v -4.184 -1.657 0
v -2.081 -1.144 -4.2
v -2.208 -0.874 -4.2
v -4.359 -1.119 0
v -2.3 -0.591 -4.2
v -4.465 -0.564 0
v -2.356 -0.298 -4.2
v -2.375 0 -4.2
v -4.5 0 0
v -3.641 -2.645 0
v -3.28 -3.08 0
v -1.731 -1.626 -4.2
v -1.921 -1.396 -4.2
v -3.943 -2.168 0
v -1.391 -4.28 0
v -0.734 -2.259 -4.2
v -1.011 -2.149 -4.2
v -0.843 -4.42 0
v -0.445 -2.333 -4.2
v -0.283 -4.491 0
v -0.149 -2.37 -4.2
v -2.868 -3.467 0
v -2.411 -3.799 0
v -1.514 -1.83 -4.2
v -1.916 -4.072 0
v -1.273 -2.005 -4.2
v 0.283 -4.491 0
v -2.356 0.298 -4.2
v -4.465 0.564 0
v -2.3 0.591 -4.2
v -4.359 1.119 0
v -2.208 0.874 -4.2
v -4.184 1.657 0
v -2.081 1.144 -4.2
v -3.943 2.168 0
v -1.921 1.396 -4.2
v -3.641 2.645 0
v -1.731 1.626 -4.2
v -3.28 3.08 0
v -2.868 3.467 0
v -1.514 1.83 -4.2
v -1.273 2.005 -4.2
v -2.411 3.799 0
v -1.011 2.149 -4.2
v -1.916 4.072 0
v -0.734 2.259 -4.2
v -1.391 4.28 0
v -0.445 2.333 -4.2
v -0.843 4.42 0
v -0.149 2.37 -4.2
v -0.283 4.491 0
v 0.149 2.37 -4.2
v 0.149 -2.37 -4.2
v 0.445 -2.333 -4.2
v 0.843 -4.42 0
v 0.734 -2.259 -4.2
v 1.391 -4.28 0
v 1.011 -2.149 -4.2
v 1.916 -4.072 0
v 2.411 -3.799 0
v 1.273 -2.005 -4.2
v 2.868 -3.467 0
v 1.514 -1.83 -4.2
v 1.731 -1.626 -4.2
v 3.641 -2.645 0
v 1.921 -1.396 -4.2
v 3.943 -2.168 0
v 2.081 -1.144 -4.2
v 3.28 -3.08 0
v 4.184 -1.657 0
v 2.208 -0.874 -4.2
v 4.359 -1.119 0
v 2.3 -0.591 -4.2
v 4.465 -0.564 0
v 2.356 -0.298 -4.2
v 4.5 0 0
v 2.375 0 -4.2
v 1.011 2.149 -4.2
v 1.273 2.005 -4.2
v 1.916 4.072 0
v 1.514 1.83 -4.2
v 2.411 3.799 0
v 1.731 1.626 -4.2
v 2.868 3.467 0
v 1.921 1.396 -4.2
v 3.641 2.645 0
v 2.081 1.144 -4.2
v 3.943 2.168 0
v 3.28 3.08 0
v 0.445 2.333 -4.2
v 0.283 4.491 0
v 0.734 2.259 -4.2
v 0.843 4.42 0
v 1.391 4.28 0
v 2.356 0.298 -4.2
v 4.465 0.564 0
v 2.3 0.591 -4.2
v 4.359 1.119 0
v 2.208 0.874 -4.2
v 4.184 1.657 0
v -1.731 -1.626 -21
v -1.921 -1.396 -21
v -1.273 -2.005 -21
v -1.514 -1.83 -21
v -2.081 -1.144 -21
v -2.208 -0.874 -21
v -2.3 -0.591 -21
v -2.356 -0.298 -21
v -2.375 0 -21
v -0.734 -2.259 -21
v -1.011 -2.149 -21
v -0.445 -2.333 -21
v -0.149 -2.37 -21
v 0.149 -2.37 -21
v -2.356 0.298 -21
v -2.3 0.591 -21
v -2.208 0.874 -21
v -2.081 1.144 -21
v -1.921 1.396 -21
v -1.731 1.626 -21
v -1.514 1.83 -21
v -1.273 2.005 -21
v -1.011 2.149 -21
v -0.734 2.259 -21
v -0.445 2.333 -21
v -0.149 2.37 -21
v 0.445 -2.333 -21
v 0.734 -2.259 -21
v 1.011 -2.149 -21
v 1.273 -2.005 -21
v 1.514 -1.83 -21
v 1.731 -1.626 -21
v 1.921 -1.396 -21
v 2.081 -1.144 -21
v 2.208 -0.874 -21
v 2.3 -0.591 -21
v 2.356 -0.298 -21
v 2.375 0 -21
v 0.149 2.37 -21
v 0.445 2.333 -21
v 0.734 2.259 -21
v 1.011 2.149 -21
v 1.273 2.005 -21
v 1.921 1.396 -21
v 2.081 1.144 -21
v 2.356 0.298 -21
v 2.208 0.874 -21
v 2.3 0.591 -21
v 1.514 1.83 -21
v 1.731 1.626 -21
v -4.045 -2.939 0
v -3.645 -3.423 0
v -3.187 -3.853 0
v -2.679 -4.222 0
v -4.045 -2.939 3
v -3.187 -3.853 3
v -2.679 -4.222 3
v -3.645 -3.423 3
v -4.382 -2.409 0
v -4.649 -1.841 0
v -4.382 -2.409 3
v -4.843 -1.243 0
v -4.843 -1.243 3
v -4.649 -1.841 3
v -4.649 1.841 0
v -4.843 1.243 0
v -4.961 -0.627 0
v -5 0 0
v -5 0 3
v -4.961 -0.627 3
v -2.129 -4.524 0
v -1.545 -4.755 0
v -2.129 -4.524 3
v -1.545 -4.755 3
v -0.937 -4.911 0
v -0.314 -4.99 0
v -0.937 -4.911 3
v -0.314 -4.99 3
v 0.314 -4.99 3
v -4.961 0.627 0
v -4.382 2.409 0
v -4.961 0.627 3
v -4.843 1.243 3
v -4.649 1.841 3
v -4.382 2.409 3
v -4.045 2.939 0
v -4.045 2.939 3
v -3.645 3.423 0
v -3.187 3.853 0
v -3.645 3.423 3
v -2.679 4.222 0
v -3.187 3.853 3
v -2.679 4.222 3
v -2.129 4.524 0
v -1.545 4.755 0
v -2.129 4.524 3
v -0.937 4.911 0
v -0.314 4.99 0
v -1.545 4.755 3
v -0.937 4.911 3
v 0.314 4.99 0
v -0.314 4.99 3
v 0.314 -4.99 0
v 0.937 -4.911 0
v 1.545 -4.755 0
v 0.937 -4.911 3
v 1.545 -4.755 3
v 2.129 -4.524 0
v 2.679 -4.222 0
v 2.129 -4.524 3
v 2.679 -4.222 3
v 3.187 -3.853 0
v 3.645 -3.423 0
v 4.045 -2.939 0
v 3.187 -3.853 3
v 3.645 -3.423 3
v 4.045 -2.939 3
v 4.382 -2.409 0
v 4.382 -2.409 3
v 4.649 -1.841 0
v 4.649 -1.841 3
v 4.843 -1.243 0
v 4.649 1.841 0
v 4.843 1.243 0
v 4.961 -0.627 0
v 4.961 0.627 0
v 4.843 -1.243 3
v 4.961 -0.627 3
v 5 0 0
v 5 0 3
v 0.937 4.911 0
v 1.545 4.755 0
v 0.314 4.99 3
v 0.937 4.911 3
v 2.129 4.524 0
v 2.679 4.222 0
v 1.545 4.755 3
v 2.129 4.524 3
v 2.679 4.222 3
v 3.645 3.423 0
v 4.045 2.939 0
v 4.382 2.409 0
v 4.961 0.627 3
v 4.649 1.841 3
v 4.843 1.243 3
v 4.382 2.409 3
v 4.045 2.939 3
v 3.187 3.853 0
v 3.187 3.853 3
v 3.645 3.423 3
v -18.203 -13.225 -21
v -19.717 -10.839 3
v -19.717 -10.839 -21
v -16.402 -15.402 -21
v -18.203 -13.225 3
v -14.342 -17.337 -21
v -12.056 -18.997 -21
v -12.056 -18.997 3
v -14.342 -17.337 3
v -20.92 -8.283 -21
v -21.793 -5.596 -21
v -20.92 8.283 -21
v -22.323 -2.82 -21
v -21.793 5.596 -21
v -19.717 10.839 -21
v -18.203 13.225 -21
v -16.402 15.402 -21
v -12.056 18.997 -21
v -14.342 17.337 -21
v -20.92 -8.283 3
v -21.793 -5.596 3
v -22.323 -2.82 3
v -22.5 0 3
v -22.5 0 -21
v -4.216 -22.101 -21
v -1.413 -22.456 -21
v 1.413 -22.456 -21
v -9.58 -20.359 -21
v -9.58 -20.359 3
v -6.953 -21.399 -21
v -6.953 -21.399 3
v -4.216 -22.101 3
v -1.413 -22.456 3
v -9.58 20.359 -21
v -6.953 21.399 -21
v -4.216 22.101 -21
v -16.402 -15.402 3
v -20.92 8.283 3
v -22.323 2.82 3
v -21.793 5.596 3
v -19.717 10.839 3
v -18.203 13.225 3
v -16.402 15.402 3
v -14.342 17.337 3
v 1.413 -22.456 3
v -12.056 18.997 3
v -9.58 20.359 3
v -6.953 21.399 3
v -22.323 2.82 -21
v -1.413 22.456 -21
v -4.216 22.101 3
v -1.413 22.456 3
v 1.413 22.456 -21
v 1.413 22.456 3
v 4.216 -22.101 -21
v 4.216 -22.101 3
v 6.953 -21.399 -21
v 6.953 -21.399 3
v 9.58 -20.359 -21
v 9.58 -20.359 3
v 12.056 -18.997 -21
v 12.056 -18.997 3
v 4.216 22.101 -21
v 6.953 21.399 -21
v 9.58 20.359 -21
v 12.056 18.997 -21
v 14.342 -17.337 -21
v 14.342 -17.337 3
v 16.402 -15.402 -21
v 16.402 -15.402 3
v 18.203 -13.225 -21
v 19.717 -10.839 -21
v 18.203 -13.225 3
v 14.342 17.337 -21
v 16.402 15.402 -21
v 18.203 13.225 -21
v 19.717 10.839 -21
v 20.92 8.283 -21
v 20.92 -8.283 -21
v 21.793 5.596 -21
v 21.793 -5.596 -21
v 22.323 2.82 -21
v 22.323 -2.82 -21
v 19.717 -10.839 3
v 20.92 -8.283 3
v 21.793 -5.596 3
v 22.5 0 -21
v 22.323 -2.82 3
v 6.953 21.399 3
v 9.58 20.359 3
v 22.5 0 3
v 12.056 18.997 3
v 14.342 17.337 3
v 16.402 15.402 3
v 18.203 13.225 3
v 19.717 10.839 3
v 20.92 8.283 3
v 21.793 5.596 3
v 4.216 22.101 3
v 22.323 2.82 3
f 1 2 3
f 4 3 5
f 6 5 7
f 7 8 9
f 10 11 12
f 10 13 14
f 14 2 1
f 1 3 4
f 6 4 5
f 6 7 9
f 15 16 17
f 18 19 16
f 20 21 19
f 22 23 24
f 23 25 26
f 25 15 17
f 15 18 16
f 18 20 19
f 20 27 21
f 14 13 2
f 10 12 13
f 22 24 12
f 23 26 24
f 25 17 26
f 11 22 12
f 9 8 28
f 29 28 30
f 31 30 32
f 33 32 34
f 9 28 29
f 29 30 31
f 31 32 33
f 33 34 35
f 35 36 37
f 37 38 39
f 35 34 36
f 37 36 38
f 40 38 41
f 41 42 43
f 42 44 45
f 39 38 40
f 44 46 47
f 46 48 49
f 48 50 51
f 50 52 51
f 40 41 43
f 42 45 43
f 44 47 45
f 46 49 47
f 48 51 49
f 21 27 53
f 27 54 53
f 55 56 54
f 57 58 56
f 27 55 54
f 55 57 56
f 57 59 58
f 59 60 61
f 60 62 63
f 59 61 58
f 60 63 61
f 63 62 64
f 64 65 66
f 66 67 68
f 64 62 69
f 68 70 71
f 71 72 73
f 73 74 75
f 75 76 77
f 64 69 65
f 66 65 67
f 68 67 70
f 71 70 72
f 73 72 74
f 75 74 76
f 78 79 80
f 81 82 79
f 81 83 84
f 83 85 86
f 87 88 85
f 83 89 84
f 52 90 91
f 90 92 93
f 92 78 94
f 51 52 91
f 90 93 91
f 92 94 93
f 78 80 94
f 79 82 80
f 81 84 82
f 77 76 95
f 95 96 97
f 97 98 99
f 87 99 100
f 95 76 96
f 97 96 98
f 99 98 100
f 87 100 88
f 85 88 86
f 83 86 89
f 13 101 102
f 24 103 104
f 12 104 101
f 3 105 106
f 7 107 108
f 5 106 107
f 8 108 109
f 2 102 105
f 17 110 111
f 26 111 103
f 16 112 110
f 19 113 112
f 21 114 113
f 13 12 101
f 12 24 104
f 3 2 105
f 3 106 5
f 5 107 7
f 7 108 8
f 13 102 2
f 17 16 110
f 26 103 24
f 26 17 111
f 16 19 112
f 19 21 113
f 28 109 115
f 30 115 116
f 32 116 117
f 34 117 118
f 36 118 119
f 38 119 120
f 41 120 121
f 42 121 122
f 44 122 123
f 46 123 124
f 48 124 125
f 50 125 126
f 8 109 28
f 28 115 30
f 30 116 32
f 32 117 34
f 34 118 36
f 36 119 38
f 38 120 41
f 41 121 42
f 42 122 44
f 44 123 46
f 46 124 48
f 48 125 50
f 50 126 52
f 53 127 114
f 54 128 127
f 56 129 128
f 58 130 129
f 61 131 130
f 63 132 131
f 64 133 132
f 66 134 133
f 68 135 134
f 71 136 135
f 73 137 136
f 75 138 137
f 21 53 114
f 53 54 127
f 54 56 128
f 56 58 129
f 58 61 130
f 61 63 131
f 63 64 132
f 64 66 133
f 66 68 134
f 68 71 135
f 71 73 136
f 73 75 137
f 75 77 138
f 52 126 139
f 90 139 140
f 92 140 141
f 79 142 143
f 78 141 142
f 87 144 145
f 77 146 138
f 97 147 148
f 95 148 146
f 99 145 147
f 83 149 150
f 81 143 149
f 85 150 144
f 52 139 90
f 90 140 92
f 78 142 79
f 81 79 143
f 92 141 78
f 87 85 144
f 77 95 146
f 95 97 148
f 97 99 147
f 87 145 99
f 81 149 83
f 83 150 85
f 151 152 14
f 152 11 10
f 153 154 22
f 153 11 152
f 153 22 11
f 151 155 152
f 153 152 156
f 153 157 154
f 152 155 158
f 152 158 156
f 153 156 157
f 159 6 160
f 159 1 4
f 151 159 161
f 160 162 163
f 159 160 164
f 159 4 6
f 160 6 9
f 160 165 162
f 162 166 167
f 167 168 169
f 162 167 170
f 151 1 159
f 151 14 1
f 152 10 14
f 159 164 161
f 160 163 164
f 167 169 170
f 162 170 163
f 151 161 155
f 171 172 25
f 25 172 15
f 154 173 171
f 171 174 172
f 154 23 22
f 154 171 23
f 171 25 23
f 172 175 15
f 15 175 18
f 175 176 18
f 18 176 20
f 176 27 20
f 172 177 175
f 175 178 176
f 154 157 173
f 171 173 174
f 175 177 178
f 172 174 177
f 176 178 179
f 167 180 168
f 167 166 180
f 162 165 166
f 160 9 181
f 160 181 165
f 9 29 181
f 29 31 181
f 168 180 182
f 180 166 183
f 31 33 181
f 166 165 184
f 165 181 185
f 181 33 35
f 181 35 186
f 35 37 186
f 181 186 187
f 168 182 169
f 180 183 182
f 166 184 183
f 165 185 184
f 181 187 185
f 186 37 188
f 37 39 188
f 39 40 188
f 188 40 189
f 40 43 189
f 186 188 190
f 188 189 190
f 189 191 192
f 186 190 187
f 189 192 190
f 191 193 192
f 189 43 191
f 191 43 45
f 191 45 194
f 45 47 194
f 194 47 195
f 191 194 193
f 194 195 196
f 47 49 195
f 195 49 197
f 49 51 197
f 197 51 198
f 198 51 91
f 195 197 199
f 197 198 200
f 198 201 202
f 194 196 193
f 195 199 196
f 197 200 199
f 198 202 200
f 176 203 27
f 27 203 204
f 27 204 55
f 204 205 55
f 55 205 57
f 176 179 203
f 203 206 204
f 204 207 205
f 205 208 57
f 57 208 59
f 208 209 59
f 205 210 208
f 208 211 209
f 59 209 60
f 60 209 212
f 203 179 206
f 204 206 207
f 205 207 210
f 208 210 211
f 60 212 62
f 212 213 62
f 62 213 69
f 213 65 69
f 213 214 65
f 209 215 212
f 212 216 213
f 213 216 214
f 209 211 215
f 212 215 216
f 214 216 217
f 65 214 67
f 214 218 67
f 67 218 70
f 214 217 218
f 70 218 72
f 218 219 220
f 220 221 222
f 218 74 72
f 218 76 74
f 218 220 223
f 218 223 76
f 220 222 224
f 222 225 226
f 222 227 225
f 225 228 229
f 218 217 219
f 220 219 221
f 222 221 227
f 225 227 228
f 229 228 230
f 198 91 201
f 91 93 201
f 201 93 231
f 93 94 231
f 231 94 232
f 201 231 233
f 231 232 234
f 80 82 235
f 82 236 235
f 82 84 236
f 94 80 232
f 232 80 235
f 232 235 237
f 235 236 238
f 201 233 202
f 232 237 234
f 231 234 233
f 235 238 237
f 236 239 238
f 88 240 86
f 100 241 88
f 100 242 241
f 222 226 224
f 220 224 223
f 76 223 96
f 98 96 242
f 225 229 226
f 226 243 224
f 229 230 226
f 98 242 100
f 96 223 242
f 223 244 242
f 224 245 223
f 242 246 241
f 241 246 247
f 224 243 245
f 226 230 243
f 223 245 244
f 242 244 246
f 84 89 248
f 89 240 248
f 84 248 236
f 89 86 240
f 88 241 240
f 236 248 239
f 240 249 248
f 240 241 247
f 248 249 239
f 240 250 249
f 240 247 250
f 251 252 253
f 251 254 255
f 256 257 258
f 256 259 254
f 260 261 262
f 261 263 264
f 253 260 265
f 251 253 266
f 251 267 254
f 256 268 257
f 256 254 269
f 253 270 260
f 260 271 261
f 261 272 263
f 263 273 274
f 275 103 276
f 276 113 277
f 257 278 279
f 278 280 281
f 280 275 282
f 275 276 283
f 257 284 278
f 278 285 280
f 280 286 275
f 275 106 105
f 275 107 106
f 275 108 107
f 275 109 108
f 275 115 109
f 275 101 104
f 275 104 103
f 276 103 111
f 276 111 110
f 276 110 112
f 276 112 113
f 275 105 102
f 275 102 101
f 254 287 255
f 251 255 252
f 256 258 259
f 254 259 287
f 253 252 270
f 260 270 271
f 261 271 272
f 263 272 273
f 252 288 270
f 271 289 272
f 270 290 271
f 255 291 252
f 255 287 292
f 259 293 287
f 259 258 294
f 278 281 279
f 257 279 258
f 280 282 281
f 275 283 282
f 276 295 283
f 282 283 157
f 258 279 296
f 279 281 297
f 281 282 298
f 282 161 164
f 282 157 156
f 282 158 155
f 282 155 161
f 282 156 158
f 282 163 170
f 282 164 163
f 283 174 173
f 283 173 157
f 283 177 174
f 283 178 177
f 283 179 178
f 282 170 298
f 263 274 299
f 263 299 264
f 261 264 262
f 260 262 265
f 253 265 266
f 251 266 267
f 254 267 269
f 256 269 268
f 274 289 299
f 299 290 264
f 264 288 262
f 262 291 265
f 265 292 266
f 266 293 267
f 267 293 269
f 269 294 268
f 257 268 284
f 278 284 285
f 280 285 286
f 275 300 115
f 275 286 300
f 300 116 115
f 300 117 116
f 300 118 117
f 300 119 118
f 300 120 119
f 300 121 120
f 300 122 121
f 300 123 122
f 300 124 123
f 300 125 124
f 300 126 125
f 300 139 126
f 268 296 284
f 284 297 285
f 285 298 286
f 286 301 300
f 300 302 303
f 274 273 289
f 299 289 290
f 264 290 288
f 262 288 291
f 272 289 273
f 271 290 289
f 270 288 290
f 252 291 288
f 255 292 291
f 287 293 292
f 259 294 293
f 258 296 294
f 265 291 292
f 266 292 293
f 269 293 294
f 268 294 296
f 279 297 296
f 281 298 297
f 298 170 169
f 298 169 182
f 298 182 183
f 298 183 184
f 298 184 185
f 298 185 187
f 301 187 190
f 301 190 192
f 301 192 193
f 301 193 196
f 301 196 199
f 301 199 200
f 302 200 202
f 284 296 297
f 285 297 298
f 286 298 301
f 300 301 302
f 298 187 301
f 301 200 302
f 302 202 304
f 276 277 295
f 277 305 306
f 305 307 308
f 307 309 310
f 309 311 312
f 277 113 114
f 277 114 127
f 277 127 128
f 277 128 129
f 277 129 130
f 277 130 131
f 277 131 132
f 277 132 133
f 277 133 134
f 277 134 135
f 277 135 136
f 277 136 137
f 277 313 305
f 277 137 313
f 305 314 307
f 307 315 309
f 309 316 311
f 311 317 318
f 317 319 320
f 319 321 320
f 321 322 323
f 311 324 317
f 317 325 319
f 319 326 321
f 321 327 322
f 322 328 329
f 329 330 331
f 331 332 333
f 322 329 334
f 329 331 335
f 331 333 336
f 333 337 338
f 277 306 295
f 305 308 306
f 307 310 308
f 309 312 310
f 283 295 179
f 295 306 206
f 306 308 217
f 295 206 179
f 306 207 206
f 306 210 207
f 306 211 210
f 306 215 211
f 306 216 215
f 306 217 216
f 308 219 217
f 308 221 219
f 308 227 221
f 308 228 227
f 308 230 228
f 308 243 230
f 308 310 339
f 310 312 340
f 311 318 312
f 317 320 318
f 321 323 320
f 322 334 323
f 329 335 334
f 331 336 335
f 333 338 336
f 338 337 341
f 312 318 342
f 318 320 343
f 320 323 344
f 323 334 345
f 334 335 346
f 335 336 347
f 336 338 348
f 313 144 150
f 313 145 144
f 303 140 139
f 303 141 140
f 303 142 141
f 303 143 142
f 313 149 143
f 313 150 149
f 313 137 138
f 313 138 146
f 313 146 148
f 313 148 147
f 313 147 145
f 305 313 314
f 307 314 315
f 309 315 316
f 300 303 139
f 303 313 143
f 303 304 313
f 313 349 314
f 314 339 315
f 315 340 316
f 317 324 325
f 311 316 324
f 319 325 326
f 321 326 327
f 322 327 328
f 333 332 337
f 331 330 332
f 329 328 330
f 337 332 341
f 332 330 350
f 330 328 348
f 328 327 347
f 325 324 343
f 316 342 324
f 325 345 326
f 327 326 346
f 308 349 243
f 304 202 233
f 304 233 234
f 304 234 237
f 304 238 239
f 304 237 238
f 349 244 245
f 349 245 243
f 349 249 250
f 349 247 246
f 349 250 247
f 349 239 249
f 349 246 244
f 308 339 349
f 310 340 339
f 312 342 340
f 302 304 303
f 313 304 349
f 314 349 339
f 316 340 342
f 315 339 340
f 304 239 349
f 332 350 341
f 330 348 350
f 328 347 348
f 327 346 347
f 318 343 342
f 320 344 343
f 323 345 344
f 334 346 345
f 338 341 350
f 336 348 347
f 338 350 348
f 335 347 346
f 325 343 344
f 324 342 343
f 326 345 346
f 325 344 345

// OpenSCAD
$fn = 50;

difference() {
	union() {
		translate(v = [0, 0, -21.0]) {
			cylinder(h = 24, r = 22.5);
		}
	}
	union() {
		translate(v = [0, 0, 0]) {
			rotate(a = [0, 0, 0]) {
				difference() {
					union() {
						translate(v = [0, 0, -24.0]) {
							cylinder(h = 24, r = 2.25);
						}
						translate(v = [0, 0, -4.2]) {
							cylinder(h = 4.2, r1 = 2.375, r2 = 4.5);
						}
						translate(v = [0, 0, -24.0]) {
							cylinder(h = 24, r = 2.375);
						}
						translate(v = [0, 0, -24.0]) {
							cylinder(h = 24, r = 2.25);
						}
					}
					union();
				}
			}
		}
		#cylinder(h = 3, r = 5.0);
	}
}
